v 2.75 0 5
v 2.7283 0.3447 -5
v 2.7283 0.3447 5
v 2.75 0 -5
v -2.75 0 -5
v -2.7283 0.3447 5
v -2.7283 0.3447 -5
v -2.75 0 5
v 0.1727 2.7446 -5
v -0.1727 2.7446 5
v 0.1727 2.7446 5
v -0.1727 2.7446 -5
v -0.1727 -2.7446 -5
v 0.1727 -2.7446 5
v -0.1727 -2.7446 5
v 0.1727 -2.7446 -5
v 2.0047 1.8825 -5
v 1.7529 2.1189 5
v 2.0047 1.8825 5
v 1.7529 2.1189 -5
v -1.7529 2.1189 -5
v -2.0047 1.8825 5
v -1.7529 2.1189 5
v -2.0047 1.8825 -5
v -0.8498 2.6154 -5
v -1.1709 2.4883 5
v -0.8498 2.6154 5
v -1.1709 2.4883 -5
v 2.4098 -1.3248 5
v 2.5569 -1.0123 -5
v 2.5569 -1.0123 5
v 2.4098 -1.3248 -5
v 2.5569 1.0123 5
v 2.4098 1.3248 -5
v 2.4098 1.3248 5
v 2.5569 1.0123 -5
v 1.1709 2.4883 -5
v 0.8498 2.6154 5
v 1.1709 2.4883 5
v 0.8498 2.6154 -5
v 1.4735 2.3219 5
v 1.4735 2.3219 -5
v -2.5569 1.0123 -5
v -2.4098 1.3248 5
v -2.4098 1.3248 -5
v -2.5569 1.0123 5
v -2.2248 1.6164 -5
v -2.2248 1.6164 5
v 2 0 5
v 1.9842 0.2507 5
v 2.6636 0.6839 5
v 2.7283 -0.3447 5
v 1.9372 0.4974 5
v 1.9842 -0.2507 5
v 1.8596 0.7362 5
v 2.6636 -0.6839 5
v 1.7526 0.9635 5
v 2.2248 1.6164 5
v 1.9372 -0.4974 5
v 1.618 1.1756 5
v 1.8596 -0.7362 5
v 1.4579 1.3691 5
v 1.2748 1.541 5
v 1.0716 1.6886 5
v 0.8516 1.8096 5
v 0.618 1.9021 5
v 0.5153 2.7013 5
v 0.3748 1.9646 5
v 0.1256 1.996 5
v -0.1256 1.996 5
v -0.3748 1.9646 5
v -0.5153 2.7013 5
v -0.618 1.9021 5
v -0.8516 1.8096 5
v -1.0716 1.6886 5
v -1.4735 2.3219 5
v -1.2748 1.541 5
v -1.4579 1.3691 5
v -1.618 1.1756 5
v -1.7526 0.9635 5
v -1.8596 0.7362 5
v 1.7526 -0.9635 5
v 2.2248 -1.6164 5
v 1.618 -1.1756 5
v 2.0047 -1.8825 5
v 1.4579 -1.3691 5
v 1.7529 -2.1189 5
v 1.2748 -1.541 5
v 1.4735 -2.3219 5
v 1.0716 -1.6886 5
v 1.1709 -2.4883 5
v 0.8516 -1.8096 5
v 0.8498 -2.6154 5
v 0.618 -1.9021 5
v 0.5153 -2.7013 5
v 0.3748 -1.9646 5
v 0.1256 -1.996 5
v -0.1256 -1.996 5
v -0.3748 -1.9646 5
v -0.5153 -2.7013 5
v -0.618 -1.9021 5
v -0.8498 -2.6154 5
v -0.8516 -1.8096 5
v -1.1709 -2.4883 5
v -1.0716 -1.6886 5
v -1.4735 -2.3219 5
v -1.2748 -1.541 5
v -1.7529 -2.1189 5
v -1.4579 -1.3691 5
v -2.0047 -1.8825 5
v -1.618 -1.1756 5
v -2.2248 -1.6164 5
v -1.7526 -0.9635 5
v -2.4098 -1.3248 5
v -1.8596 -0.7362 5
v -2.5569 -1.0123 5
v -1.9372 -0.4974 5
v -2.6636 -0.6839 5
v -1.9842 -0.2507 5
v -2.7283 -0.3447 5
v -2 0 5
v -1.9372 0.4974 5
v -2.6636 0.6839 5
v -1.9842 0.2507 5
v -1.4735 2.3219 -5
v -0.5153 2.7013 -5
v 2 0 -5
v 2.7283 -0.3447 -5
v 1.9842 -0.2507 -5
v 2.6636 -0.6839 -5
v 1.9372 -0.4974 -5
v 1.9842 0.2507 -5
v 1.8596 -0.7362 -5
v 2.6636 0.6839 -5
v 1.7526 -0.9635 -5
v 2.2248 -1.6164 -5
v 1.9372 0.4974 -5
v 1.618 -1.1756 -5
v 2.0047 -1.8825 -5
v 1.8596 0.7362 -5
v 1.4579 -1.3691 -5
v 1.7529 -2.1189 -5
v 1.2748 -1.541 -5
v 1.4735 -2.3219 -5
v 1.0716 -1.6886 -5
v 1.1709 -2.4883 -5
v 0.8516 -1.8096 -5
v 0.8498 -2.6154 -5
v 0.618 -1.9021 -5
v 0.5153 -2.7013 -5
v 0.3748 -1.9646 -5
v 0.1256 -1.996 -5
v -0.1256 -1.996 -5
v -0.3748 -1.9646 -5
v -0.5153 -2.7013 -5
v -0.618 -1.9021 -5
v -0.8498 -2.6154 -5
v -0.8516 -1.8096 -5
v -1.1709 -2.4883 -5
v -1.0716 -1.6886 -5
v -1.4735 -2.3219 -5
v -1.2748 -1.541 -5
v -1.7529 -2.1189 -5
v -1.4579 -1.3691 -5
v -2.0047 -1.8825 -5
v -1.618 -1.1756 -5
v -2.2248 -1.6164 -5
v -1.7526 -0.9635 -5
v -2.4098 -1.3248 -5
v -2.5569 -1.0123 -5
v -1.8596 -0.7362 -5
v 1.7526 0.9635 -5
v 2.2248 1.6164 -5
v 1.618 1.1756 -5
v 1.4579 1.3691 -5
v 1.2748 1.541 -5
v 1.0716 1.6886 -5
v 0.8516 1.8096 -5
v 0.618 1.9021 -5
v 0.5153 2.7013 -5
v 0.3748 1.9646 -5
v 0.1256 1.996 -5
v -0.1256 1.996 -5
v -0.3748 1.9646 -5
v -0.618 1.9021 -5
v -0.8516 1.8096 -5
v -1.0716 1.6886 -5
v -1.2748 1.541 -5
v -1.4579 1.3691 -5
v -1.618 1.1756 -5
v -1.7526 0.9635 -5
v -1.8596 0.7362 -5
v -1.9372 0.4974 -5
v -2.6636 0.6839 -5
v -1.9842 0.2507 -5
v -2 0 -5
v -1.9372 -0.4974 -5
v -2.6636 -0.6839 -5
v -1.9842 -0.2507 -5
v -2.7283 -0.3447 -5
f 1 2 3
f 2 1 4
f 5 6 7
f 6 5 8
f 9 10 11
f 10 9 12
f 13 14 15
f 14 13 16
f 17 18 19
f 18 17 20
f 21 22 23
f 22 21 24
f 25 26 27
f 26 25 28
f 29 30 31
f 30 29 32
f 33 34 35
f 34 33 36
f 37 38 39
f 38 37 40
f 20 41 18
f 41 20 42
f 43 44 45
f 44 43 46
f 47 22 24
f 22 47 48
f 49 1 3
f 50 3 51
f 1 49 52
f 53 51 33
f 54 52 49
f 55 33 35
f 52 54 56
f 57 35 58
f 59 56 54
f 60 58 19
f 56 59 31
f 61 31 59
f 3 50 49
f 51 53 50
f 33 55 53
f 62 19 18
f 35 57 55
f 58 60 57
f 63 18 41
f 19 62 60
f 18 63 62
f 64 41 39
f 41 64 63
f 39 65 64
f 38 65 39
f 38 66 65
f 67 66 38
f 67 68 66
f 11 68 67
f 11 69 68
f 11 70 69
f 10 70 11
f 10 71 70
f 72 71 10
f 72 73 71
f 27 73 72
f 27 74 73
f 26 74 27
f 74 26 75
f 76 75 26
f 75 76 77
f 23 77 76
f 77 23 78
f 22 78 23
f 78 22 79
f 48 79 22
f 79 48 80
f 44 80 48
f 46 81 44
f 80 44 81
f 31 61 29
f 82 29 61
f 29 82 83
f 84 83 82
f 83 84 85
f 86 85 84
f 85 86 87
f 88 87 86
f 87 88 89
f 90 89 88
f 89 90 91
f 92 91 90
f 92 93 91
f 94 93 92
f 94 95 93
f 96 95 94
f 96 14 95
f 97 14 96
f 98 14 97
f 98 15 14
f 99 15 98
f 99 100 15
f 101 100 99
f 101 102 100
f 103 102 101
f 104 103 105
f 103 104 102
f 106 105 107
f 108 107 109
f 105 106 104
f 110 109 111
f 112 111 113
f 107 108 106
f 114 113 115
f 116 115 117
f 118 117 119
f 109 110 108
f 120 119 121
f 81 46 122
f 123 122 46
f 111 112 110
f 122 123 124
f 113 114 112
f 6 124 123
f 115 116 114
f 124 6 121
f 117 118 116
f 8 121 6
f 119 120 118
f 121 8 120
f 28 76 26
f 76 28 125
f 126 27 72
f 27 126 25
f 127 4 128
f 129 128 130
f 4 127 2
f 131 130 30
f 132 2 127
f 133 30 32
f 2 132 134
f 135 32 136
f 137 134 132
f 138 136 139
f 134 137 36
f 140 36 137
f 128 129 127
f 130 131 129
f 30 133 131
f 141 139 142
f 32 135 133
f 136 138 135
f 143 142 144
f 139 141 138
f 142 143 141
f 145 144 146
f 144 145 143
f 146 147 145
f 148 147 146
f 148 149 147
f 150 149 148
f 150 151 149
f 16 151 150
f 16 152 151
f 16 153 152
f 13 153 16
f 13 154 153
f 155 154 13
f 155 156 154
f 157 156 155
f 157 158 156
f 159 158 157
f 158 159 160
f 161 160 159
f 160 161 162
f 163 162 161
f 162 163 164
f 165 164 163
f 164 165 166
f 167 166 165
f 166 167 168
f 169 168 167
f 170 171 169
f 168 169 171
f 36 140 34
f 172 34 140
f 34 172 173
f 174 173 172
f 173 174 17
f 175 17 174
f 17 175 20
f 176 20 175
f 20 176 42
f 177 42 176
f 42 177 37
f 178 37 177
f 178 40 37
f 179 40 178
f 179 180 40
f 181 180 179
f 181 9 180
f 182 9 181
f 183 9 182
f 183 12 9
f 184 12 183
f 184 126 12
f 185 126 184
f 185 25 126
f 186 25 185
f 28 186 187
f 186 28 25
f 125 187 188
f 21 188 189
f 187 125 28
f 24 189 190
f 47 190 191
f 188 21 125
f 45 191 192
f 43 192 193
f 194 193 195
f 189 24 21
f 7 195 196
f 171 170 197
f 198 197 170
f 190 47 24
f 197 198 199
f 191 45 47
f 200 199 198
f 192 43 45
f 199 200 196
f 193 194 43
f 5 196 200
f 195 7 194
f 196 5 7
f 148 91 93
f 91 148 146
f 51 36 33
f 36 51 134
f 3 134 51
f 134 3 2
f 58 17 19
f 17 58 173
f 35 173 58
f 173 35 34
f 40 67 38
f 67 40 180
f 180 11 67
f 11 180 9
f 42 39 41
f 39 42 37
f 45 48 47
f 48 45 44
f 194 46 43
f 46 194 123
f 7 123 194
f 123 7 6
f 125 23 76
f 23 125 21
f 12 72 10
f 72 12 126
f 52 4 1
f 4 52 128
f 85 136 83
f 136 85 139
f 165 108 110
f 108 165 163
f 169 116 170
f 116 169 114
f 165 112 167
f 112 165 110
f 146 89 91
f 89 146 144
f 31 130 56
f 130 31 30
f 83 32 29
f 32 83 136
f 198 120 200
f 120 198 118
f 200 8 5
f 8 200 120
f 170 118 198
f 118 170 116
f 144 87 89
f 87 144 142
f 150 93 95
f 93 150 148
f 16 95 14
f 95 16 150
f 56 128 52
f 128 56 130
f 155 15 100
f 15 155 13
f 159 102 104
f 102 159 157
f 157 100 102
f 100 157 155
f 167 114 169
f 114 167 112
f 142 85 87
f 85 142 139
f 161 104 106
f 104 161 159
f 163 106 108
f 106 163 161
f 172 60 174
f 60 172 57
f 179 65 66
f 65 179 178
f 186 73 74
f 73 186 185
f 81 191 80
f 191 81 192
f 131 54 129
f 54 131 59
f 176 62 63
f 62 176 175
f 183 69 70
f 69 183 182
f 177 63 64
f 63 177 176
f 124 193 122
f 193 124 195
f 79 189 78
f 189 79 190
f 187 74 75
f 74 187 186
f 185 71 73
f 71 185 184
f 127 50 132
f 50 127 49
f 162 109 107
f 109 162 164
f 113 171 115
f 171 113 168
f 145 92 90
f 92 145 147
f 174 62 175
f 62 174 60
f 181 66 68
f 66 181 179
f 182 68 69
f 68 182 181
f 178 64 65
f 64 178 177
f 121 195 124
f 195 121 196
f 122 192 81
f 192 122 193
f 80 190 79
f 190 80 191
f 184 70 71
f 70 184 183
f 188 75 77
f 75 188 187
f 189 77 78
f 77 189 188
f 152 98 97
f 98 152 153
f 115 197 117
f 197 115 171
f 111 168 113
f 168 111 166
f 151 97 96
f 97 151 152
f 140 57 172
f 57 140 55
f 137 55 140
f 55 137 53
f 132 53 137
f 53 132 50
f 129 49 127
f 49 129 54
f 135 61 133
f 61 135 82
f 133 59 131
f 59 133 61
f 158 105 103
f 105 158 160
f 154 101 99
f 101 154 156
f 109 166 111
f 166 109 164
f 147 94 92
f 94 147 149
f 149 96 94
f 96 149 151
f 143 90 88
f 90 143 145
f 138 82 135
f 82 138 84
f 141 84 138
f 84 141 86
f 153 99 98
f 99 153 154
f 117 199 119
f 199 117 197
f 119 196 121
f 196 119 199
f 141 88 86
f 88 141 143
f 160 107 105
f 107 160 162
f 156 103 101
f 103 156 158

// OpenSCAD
$fn = 50;


difference() {
	union() {
		translate(v = [0, 0, -5.0000000000]) {
			cylinder(h = 10, r = 2.7500000000);
		}
	}
	union() {
		translate(v = [0, 0, -100.0000000000]) {
			cylinder(h = 200, r = 2.0000000000);
		}
	}
}
